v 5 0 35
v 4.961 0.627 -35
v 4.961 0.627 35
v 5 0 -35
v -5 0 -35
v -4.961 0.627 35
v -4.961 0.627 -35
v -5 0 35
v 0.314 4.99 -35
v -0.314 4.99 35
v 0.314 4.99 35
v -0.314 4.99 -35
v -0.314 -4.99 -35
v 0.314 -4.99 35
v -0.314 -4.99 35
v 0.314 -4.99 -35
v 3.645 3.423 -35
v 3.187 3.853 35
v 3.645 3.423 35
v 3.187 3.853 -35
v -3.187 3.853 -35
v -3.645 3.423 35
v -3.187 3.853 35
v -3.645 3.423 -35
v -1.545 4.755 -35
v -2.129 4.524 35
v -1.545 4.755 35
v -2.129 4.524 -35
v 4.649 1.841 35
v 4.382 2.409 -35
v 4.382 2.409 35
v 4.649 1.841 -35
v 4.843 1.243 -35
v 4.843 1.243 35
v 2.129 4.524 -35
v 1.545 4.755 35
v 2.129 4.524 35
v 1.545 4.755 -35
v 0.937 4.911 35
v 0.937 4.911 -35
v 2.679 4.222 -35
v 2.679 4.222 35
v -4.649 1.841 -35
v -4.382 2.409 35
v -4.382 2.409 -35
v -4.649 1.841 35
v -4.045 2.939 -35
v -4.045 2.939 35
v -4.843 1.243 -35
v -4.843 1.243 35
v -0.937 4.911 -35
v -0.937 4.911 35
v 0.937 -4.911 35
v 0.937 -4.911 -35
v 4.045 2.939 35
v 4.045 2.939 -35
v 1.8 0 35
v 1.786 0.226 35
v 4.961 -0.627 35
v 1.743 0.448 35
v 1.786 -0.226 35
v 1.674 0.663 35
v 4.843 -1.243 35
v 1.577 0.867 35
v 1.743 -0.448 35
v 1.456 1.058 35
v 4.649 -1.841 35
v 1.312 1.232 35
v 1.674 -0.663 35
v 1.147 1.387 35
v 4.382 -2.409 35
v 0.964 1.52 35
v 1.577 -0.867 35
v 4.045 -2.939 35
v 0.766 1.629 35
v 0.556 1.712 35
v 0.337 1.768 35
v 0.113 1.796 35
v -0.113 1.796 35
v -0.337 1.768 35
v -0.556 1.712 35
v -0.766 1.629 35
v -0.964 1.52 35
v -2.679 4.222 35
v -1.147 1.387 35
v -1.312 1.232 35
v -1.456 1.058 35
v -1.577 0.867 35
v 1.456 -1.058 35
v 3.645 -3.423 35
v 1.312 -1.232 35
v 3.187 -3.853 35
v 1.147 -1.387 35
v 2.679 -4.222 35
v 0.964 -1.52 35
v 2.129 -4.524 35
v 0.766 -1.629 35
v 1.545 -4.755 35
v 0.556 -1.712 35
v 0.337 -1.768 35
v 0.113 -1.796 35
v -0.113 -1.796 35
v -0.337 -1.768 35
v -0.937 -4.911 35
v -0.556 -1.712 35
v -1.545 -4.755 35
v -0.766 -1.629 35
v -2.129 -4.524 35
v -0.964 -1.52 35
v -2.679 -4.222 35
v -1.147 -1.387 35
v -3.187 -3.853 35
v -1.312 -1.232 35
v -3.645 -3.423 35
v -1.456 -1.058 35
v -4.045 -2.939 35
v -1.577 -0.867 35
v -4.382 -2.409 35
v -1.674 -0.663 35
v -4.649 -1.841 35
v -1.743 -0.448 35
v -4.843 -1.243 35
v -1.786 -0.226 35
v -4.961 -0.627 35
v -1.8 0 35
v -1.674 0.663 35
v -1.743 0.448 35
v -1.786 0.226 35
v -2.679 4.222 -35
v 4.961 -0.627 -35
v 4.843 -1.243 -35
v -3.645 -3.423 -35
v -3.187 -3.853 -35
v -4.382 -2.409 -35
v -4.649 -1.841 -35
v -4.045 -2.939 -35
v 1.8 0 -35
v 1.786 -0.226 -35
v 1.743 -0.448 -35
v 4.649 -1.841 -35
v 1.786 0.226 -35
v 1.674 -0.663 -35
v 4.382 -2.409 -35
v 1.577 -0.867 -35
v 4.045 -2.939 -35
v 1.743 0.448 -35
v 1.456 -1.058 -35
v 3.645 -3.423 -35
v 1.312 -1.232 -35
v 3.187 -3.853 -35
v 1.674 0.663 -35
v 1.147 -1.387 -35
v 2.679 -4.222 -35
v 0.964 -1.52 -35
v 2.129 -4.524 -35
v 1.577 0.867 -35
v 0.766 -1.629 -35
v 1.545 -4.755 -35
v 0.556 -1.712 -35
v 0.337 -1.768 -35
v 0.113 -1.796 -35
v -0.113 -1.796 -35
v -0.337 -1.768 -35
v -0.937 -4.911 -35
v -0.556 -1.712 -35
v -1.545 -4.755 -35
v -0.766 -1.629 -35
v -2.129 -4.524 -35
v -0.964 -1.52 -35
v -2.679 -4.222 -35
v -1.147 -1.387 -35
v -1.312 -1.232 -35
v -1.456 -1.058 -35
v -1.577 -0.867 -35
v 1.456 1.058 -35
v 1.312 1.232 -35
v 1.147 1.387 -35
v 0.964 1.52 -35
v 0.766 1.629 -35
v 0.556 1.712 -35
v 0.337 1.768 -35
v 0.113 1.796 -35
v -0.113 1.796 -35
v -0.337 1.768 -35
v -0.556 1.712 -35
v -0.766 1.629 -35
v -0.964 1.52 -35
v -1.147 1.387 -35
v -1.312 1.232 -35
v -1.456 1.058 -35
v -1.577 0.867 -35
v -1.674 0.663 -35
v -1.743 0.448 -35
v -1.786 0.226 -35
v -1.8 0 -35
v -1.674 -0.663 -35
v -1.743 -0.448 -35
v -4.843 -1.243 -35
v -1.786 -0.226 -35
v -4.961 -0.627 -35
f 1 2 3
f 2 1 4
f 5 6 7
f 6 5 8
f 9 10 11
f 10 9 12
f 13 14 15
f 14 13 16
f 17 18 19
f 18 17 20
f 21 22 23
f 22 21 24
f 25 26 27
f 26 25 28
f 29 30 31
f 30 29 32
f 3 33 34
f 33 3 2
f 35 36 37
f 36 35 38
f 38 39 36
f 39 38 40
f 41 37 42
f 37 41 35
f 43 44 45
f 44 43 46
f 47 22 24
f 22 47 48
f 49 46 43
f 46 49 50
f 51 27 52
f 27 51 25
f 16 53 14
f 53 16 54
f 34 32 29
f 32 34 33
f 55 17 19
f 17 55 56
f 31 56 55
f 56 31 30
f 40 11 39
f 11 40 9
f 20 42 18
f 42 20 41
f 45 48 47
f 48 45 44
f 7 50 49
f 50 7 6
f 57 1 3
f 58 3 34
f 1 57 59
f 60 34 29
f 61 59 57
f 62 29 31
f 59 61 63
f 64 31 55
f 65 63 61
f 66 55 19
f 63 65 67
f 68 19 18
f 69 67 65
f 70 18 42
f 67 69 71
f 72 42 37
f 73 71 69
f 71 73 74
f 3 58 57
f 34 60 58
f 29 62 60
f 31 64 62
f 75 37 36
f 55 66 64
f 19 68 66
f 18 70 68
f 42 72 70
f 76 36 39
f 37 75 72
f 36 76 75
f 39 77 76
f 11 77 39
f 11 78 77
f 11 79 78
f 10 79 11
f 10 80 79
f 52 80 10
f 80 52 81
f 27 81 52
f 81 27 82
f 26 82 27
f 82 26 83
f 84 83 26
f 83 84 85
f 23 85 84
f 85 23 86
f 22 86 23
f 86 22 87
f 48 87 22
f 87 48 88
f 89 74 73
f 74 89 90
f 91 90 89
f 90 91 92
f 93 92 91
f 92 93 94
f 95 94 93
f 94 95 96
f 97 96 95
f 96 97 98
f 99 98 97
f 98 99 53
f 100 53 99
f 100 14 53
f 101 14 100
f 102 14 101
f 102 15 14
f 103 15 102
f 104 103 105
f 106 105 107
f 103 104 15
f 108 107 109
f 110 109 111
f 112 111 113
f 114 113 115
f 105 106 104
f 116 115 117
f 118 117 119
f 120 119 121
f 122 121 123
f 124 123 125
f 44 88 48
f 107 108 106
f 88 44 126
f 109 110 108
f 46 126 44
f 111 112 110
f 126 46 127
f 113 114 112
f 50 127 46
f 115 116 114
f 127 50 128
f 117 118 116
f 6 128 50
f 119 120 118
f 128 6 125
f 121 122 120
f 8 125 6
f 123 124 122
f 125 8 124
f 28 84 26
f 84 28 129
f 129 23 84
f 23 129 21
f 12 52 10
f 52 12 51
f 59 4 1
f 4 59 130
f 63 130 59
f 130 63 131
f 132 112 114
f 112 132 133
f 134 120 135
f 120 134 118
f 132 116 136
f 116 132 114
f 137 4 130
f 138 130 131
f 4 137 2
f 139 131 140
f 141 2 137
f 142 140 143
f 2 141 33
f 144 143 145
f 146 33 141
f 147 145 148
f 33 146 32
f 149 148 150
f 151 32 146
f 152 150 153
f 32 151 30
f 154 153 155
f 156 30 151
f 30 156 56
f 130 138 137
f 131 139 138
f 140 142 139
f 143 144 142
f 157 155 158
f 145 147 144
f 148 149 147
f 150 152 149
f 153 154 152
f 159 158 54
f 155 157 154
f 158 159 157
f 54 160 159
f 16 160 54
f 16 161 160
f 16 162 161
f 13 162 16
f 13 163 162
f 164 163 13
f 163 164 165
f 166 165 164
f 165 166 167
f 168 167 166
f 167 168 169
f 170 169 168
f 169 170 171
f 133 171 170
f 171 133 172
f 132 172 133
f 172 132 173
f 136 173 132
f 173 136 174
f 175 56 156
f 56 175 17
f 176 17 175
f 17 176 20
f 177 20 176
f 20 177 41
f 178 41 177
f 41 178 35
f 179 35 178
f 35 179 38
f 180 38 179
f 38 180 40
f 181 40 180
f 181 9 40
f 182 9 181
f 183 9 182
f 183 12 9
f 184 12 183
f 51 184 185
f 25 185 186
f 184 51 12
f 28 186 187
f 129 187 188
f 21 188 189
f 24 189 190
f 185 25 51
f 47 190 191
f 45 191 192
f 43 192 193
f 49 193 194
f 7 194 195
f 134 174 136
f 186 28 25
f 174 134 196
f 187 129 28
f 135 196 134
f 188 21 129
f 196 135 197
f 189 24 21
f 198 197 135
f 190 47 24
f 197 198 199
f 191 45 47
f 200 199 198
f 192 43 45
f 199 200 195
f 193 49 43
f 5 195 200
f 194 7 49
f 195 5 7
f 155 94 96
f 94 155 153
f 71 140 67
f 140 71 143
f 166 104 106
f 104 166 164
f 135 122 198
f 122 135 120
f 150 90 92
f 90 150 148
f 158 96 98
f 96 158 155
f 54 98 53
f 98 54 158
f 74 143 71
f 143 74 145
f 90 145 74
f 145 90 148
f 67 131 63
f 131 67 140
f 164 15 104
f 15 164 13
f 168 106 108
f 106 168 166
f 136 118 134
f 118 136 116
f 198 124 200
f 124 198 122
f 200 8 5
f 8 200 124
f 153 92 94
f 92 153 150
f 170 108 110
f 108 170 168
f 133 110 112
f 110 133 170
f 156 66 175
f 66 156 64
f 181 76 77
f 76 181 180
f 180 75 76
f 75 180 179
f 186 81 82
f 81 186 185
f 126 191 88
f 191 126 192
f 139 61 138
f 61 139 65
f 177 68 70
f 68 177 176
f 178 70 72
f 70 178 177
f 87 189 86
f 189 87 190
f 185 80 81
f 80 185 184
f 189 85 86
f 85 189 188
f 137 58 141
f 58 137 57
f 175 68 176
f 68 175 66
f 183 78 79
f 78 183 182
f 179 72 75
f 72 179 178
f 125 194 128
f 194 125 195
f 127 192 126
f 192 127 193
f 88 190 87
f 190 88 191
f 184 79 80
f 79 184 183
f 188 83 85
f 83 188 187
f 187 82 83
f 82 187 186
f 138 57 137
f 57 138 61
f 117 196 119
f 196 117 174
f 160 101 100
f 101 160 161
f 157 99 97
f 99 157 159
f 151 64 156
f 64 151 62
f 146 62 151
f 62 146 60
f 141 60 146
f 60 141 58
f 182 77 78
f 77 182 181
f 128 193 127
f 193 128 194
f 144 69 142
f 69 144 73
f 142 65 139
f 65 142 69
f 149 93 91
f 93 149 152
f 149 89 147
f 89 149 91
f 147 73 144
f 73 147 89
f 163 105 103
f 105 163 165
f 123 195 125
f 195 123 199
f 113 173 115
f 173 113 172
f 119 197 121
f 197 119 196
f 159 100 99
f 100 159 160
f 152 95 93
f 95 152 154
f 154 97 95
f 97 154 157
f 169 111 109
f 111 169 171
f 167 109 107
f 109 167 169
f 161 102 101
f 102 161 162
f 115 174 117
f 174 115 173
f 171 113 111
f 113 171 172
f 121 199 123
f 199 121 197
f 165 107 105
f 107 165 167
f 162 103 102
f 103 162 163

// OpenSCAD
$fn = 50;


difference() {
	union() {
		translate(v = [0, 0, -35.0000000000]) {
			cylinder(h = 70, r = 5.0000000000);
		}
	}
	union() {
		translate(v = [0, 0, -100.0000000000]) {
			cylinder(h = 200, r = 1.8000000000);
		}
	}
}
